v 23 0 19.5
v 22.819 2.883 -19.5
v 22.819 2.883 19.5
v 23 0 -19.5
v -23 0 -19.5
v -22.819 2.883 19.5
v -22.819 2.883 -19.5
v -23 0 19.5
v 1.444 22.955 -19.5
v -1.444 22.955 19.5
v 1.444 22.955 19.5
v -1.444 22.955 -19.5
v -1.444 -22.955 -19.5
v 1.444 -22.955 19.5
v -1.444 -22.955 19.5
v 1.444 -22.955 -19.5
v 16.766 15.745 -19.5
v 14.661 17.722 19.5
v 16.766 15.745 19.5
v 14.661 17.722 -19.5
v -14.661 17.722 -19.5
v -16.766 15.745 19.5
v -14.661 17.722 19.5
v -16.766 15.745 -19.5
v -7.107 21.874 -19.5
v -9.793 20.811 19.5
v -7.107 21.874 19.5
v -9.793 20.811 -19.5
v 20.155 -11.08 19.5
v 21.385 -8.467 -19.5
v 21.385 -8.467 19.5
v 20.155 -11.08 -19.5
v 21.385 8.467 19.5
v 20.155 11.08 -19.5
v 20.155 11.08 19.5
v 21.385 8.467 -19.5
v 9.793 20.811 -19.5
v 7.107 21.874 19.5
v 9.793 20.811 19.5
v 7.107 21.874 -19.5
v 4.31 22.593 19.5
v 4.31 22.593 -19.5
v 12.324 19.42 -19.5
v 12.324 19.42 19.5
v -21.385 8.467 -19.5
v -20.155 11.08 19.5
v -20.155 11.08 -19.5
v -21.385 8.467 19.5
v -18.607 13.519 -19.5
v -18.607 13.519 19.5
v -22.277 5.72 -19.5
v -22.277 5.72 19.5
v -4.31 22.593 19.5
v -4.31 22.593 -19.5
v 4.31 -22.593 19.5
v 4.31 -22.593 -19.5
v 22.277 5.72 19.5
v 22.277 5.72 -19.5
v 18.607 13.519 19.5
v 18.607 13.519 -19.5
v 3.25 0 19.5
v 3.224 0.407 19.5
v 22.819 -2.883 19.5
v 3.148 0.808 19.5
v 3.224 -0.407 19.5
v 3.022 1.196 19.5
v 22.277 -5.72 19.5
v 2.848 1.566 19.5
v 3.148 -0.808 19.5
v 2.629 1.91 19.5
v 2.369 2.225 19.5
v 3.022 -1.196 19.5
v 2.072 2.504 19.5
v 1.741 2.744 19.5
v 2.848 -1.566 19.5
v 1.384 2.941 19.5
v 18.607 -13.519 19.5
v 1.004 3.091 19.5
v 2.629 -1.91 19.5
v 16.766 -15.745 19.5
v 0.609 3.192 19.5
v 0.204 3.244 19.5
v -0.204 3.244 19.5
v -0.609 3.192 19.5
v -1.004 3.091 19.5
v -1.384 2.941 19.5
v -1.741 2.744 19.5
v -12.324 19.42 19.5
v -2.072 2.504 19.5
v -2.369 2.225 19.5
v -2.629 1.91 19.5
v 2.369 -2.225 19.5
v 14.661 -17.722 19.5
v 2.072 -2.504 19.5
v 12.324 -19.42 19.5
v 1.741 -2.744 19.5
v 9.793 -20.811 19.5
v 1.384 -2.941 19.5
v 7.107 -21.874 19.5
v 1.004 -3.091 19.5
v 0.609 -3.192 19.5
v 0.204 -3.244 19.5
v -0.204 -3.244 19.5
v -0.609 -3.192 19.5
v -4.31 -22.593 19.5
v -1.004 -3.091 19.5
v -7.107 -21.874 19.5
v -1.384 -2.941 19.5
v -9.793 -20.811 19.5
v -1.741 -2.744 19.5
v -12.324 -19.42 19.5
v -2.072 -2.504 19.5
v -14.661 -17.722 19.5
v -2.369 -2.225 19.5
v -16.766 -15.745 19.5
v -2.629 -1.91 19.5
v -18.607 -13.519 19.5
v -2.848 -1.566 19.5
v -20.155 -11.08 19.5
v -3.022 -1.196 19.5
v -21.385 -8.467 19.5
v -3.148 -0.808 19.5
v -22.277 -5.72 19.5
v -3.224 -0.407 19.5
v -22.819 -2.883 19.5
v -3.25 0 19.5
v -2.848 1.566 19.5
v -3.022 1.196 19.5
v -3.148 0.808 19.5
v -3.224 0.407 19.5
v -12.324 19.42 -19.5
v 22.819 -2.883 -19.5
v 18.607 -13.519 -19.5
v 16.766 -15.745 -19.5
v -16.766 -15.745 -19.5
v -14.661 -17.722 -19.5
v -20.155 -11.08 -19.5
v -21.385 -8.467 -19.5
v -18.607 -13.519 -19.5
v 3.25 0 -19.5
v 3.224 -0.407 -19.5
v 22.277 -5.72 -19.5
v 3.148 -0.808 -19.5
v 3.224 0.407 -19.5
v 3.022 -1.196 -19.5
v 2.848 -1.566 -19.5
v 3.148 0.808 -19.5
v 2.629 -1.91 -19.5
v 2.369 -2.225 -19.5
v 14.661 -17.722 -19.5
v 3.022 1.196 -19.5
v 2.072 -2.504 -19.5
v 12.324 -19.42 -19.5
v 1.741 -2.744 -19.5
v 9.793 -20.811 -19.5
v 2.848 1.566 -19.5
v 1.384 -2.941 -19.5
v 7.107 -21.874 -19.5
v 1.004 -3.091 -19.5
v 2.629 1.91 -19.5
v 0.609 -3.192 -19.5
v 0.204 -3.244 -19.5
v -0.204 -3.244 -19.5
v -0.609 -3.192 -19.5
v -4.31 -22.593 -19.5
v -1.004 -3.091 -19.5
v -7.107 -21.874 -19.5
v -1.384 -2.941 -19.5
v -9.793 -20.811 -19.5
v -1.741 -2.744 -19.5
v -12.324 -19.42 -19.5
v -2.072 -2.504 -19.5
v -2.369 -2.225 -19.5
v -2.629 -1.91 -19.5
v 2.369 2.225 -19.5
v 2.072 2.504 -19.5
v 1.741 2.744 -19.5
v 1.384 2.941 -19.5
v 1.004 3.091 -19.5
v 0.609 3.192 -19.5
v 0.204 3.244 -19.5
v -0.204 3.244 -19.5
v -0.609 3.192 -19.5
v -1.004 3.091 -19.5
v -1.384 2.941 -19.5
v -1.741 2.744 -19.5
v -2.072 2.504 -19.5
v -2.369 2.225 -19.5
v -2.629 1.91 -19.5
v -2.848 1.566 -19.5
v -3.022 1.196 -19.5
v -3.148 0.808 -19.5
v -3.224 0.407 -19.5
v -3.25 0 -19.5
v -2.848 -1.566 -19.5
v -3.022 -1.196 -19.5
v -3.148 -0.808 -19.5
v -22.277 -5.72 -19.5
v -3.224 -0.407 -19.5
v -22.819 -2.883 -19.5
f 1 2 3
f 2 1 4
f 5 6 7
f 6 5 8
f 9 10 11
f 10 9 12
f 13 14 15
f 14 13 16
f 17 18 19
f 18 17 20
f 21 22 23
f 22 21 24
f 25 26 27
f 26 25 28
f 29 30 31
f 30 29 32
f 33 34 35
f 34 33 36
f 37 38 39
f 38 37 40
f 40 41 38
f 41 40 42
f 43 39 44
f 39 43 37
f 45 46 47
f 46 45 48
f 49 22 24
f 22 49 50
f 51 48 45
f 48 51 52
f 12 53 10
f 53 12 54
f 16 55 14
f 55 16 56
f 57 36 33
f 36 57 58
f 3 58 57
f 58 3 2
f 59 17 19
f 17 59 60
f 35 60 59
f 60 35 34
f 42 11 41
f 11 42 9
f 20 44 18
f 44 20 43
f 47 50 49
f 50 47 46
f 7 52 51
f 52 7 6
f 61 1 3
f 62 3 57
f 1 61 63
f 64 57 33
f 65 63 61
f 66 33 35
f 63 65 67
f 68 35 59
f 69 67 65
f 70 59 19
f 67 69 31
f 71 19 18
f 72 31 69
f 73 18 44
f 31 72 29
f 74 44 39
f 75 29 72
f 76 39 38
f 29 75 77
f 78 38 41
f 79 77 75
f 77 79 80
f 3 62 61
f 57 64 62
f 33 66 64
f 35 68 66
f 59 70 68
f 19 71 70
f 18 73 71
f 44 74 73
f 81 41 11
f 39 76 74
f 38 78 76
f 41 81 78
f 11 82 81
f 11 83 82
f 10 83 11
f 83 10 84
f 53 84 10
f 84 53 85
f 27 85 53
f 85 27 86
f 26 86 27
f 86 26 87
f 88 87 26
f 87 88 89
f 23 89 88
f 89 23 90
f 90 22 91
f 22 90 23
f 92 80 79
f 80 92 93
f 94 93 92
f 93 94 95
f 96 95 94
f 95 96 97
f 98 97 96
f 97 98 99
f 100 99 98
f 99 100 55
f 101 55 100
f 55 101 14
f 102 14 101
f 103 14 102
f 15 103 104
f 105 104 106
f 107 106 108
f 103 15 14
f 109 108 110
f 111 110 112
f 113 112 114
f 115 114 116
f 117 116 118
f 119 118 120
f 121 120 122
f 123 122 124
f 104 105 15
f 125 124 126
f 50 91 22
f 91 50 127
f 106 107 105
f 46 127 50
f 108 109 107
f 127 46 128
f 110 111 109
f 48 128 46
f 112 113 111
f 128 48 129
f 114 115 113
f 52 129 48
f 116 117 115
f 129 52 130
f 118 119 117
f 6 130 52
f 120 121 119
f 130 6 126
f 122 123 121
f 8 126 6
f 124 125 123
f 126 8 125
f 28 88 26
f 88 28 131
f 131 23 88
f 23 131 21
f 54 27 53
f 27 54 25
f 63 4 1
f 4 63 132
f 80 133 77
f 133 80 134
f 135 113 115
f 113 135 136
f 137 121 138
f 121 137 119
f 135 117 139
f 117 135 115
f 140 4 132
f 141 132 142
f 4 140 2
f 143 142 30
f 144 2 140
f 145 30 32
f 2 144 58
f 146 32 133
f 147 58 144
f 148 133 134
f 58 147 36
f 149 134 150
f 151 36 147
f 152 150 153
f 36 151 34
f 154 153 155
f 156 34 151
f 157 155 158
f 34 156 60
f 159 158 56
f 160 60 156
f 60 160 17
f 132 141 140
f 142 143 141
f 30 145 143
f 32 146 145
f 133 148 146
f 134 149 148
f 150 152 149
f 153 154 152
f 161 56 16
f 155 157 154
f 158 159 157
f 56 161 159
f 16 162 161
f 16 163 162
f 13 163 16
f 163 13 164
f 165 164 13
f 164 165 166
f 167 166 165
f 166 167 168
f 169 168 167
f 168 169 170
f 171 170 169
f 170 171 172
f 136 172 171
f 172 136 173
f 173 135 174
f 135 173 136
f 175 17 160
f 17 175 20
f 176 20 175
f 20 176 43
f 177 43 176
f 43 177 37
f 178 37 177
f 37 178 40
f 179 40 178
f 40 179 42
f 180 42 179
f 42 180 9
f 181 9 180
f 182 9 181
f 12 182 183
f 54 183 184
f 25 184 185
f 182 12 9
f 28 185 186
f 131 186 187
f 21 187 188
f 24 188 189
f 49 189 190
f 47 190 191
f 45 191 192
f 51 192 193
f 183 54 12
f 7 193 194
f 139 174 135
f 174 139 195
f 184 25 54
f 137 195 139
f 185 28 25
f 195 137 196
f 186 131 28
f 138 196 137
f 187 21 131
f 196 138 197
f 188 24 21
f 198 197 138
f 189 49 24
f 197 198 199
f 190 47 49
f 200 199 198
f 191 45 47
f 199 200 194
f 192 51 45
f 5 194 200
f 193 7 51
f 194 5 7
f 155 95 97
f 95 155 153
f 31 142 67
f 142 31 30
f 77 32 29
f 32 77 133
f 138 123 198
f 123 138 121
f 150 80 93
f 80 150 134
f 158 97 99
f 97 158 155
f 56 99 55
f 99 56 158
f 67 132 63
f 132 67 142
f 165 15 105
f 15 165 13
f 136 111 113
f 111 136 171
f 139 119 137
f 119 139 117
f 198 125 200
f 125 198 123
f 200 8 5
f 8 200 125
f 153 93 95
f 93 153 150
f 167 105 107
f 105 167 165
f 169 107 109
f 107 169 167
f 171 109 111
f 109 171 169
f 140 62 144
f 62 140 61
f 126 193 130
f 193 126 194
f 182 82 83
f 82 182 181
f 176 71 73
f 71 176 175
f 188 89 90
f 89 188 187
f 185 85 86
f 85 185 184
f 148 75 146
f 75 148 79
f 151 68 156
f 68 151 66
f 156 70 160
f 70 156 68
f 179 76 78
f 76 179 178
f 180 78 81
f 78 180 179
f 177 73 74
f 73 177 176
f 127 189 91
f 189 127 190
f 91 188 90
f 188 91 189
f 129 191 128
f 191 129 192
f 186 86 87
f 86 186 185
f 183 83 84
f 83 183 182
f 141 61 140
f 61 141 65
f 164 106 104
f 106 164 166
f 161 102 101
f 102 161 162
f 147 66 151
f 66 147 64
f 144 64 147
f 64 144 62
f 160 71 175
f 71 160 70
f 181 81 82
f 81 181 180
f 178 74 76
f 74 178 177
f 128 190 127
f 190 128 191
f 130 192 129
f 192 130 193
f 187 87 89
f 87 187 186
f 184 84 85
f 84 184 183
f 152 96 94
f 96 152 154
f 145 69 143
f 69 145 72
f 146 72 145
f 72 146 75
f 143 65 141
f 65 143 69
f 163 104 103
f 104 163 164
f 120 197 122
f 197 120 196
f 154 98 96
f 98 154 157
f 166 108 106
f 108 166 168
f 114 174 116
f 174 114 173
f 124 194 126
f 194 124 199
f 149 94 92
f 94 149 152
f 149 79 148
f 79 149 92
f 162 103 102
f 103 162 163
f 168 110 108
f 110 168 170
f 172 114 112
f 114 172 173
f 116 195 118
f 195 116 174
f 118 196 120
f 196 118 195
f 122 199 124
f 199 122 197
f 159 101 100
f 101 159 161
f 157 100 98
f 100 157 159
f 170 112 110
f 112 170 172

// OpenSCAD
$fn = 50;


difference() {
	union() {
		translate(v = [0, 0, -19.5000000000]) {
			cylinder(h = 39, r = 23.0000000000);
		}
	}
	union() {
		translate(v = [0, 0, -100.0000000000]) {
			cylinder(h = 200, r = 3.2500000000);
		}
	}
}
